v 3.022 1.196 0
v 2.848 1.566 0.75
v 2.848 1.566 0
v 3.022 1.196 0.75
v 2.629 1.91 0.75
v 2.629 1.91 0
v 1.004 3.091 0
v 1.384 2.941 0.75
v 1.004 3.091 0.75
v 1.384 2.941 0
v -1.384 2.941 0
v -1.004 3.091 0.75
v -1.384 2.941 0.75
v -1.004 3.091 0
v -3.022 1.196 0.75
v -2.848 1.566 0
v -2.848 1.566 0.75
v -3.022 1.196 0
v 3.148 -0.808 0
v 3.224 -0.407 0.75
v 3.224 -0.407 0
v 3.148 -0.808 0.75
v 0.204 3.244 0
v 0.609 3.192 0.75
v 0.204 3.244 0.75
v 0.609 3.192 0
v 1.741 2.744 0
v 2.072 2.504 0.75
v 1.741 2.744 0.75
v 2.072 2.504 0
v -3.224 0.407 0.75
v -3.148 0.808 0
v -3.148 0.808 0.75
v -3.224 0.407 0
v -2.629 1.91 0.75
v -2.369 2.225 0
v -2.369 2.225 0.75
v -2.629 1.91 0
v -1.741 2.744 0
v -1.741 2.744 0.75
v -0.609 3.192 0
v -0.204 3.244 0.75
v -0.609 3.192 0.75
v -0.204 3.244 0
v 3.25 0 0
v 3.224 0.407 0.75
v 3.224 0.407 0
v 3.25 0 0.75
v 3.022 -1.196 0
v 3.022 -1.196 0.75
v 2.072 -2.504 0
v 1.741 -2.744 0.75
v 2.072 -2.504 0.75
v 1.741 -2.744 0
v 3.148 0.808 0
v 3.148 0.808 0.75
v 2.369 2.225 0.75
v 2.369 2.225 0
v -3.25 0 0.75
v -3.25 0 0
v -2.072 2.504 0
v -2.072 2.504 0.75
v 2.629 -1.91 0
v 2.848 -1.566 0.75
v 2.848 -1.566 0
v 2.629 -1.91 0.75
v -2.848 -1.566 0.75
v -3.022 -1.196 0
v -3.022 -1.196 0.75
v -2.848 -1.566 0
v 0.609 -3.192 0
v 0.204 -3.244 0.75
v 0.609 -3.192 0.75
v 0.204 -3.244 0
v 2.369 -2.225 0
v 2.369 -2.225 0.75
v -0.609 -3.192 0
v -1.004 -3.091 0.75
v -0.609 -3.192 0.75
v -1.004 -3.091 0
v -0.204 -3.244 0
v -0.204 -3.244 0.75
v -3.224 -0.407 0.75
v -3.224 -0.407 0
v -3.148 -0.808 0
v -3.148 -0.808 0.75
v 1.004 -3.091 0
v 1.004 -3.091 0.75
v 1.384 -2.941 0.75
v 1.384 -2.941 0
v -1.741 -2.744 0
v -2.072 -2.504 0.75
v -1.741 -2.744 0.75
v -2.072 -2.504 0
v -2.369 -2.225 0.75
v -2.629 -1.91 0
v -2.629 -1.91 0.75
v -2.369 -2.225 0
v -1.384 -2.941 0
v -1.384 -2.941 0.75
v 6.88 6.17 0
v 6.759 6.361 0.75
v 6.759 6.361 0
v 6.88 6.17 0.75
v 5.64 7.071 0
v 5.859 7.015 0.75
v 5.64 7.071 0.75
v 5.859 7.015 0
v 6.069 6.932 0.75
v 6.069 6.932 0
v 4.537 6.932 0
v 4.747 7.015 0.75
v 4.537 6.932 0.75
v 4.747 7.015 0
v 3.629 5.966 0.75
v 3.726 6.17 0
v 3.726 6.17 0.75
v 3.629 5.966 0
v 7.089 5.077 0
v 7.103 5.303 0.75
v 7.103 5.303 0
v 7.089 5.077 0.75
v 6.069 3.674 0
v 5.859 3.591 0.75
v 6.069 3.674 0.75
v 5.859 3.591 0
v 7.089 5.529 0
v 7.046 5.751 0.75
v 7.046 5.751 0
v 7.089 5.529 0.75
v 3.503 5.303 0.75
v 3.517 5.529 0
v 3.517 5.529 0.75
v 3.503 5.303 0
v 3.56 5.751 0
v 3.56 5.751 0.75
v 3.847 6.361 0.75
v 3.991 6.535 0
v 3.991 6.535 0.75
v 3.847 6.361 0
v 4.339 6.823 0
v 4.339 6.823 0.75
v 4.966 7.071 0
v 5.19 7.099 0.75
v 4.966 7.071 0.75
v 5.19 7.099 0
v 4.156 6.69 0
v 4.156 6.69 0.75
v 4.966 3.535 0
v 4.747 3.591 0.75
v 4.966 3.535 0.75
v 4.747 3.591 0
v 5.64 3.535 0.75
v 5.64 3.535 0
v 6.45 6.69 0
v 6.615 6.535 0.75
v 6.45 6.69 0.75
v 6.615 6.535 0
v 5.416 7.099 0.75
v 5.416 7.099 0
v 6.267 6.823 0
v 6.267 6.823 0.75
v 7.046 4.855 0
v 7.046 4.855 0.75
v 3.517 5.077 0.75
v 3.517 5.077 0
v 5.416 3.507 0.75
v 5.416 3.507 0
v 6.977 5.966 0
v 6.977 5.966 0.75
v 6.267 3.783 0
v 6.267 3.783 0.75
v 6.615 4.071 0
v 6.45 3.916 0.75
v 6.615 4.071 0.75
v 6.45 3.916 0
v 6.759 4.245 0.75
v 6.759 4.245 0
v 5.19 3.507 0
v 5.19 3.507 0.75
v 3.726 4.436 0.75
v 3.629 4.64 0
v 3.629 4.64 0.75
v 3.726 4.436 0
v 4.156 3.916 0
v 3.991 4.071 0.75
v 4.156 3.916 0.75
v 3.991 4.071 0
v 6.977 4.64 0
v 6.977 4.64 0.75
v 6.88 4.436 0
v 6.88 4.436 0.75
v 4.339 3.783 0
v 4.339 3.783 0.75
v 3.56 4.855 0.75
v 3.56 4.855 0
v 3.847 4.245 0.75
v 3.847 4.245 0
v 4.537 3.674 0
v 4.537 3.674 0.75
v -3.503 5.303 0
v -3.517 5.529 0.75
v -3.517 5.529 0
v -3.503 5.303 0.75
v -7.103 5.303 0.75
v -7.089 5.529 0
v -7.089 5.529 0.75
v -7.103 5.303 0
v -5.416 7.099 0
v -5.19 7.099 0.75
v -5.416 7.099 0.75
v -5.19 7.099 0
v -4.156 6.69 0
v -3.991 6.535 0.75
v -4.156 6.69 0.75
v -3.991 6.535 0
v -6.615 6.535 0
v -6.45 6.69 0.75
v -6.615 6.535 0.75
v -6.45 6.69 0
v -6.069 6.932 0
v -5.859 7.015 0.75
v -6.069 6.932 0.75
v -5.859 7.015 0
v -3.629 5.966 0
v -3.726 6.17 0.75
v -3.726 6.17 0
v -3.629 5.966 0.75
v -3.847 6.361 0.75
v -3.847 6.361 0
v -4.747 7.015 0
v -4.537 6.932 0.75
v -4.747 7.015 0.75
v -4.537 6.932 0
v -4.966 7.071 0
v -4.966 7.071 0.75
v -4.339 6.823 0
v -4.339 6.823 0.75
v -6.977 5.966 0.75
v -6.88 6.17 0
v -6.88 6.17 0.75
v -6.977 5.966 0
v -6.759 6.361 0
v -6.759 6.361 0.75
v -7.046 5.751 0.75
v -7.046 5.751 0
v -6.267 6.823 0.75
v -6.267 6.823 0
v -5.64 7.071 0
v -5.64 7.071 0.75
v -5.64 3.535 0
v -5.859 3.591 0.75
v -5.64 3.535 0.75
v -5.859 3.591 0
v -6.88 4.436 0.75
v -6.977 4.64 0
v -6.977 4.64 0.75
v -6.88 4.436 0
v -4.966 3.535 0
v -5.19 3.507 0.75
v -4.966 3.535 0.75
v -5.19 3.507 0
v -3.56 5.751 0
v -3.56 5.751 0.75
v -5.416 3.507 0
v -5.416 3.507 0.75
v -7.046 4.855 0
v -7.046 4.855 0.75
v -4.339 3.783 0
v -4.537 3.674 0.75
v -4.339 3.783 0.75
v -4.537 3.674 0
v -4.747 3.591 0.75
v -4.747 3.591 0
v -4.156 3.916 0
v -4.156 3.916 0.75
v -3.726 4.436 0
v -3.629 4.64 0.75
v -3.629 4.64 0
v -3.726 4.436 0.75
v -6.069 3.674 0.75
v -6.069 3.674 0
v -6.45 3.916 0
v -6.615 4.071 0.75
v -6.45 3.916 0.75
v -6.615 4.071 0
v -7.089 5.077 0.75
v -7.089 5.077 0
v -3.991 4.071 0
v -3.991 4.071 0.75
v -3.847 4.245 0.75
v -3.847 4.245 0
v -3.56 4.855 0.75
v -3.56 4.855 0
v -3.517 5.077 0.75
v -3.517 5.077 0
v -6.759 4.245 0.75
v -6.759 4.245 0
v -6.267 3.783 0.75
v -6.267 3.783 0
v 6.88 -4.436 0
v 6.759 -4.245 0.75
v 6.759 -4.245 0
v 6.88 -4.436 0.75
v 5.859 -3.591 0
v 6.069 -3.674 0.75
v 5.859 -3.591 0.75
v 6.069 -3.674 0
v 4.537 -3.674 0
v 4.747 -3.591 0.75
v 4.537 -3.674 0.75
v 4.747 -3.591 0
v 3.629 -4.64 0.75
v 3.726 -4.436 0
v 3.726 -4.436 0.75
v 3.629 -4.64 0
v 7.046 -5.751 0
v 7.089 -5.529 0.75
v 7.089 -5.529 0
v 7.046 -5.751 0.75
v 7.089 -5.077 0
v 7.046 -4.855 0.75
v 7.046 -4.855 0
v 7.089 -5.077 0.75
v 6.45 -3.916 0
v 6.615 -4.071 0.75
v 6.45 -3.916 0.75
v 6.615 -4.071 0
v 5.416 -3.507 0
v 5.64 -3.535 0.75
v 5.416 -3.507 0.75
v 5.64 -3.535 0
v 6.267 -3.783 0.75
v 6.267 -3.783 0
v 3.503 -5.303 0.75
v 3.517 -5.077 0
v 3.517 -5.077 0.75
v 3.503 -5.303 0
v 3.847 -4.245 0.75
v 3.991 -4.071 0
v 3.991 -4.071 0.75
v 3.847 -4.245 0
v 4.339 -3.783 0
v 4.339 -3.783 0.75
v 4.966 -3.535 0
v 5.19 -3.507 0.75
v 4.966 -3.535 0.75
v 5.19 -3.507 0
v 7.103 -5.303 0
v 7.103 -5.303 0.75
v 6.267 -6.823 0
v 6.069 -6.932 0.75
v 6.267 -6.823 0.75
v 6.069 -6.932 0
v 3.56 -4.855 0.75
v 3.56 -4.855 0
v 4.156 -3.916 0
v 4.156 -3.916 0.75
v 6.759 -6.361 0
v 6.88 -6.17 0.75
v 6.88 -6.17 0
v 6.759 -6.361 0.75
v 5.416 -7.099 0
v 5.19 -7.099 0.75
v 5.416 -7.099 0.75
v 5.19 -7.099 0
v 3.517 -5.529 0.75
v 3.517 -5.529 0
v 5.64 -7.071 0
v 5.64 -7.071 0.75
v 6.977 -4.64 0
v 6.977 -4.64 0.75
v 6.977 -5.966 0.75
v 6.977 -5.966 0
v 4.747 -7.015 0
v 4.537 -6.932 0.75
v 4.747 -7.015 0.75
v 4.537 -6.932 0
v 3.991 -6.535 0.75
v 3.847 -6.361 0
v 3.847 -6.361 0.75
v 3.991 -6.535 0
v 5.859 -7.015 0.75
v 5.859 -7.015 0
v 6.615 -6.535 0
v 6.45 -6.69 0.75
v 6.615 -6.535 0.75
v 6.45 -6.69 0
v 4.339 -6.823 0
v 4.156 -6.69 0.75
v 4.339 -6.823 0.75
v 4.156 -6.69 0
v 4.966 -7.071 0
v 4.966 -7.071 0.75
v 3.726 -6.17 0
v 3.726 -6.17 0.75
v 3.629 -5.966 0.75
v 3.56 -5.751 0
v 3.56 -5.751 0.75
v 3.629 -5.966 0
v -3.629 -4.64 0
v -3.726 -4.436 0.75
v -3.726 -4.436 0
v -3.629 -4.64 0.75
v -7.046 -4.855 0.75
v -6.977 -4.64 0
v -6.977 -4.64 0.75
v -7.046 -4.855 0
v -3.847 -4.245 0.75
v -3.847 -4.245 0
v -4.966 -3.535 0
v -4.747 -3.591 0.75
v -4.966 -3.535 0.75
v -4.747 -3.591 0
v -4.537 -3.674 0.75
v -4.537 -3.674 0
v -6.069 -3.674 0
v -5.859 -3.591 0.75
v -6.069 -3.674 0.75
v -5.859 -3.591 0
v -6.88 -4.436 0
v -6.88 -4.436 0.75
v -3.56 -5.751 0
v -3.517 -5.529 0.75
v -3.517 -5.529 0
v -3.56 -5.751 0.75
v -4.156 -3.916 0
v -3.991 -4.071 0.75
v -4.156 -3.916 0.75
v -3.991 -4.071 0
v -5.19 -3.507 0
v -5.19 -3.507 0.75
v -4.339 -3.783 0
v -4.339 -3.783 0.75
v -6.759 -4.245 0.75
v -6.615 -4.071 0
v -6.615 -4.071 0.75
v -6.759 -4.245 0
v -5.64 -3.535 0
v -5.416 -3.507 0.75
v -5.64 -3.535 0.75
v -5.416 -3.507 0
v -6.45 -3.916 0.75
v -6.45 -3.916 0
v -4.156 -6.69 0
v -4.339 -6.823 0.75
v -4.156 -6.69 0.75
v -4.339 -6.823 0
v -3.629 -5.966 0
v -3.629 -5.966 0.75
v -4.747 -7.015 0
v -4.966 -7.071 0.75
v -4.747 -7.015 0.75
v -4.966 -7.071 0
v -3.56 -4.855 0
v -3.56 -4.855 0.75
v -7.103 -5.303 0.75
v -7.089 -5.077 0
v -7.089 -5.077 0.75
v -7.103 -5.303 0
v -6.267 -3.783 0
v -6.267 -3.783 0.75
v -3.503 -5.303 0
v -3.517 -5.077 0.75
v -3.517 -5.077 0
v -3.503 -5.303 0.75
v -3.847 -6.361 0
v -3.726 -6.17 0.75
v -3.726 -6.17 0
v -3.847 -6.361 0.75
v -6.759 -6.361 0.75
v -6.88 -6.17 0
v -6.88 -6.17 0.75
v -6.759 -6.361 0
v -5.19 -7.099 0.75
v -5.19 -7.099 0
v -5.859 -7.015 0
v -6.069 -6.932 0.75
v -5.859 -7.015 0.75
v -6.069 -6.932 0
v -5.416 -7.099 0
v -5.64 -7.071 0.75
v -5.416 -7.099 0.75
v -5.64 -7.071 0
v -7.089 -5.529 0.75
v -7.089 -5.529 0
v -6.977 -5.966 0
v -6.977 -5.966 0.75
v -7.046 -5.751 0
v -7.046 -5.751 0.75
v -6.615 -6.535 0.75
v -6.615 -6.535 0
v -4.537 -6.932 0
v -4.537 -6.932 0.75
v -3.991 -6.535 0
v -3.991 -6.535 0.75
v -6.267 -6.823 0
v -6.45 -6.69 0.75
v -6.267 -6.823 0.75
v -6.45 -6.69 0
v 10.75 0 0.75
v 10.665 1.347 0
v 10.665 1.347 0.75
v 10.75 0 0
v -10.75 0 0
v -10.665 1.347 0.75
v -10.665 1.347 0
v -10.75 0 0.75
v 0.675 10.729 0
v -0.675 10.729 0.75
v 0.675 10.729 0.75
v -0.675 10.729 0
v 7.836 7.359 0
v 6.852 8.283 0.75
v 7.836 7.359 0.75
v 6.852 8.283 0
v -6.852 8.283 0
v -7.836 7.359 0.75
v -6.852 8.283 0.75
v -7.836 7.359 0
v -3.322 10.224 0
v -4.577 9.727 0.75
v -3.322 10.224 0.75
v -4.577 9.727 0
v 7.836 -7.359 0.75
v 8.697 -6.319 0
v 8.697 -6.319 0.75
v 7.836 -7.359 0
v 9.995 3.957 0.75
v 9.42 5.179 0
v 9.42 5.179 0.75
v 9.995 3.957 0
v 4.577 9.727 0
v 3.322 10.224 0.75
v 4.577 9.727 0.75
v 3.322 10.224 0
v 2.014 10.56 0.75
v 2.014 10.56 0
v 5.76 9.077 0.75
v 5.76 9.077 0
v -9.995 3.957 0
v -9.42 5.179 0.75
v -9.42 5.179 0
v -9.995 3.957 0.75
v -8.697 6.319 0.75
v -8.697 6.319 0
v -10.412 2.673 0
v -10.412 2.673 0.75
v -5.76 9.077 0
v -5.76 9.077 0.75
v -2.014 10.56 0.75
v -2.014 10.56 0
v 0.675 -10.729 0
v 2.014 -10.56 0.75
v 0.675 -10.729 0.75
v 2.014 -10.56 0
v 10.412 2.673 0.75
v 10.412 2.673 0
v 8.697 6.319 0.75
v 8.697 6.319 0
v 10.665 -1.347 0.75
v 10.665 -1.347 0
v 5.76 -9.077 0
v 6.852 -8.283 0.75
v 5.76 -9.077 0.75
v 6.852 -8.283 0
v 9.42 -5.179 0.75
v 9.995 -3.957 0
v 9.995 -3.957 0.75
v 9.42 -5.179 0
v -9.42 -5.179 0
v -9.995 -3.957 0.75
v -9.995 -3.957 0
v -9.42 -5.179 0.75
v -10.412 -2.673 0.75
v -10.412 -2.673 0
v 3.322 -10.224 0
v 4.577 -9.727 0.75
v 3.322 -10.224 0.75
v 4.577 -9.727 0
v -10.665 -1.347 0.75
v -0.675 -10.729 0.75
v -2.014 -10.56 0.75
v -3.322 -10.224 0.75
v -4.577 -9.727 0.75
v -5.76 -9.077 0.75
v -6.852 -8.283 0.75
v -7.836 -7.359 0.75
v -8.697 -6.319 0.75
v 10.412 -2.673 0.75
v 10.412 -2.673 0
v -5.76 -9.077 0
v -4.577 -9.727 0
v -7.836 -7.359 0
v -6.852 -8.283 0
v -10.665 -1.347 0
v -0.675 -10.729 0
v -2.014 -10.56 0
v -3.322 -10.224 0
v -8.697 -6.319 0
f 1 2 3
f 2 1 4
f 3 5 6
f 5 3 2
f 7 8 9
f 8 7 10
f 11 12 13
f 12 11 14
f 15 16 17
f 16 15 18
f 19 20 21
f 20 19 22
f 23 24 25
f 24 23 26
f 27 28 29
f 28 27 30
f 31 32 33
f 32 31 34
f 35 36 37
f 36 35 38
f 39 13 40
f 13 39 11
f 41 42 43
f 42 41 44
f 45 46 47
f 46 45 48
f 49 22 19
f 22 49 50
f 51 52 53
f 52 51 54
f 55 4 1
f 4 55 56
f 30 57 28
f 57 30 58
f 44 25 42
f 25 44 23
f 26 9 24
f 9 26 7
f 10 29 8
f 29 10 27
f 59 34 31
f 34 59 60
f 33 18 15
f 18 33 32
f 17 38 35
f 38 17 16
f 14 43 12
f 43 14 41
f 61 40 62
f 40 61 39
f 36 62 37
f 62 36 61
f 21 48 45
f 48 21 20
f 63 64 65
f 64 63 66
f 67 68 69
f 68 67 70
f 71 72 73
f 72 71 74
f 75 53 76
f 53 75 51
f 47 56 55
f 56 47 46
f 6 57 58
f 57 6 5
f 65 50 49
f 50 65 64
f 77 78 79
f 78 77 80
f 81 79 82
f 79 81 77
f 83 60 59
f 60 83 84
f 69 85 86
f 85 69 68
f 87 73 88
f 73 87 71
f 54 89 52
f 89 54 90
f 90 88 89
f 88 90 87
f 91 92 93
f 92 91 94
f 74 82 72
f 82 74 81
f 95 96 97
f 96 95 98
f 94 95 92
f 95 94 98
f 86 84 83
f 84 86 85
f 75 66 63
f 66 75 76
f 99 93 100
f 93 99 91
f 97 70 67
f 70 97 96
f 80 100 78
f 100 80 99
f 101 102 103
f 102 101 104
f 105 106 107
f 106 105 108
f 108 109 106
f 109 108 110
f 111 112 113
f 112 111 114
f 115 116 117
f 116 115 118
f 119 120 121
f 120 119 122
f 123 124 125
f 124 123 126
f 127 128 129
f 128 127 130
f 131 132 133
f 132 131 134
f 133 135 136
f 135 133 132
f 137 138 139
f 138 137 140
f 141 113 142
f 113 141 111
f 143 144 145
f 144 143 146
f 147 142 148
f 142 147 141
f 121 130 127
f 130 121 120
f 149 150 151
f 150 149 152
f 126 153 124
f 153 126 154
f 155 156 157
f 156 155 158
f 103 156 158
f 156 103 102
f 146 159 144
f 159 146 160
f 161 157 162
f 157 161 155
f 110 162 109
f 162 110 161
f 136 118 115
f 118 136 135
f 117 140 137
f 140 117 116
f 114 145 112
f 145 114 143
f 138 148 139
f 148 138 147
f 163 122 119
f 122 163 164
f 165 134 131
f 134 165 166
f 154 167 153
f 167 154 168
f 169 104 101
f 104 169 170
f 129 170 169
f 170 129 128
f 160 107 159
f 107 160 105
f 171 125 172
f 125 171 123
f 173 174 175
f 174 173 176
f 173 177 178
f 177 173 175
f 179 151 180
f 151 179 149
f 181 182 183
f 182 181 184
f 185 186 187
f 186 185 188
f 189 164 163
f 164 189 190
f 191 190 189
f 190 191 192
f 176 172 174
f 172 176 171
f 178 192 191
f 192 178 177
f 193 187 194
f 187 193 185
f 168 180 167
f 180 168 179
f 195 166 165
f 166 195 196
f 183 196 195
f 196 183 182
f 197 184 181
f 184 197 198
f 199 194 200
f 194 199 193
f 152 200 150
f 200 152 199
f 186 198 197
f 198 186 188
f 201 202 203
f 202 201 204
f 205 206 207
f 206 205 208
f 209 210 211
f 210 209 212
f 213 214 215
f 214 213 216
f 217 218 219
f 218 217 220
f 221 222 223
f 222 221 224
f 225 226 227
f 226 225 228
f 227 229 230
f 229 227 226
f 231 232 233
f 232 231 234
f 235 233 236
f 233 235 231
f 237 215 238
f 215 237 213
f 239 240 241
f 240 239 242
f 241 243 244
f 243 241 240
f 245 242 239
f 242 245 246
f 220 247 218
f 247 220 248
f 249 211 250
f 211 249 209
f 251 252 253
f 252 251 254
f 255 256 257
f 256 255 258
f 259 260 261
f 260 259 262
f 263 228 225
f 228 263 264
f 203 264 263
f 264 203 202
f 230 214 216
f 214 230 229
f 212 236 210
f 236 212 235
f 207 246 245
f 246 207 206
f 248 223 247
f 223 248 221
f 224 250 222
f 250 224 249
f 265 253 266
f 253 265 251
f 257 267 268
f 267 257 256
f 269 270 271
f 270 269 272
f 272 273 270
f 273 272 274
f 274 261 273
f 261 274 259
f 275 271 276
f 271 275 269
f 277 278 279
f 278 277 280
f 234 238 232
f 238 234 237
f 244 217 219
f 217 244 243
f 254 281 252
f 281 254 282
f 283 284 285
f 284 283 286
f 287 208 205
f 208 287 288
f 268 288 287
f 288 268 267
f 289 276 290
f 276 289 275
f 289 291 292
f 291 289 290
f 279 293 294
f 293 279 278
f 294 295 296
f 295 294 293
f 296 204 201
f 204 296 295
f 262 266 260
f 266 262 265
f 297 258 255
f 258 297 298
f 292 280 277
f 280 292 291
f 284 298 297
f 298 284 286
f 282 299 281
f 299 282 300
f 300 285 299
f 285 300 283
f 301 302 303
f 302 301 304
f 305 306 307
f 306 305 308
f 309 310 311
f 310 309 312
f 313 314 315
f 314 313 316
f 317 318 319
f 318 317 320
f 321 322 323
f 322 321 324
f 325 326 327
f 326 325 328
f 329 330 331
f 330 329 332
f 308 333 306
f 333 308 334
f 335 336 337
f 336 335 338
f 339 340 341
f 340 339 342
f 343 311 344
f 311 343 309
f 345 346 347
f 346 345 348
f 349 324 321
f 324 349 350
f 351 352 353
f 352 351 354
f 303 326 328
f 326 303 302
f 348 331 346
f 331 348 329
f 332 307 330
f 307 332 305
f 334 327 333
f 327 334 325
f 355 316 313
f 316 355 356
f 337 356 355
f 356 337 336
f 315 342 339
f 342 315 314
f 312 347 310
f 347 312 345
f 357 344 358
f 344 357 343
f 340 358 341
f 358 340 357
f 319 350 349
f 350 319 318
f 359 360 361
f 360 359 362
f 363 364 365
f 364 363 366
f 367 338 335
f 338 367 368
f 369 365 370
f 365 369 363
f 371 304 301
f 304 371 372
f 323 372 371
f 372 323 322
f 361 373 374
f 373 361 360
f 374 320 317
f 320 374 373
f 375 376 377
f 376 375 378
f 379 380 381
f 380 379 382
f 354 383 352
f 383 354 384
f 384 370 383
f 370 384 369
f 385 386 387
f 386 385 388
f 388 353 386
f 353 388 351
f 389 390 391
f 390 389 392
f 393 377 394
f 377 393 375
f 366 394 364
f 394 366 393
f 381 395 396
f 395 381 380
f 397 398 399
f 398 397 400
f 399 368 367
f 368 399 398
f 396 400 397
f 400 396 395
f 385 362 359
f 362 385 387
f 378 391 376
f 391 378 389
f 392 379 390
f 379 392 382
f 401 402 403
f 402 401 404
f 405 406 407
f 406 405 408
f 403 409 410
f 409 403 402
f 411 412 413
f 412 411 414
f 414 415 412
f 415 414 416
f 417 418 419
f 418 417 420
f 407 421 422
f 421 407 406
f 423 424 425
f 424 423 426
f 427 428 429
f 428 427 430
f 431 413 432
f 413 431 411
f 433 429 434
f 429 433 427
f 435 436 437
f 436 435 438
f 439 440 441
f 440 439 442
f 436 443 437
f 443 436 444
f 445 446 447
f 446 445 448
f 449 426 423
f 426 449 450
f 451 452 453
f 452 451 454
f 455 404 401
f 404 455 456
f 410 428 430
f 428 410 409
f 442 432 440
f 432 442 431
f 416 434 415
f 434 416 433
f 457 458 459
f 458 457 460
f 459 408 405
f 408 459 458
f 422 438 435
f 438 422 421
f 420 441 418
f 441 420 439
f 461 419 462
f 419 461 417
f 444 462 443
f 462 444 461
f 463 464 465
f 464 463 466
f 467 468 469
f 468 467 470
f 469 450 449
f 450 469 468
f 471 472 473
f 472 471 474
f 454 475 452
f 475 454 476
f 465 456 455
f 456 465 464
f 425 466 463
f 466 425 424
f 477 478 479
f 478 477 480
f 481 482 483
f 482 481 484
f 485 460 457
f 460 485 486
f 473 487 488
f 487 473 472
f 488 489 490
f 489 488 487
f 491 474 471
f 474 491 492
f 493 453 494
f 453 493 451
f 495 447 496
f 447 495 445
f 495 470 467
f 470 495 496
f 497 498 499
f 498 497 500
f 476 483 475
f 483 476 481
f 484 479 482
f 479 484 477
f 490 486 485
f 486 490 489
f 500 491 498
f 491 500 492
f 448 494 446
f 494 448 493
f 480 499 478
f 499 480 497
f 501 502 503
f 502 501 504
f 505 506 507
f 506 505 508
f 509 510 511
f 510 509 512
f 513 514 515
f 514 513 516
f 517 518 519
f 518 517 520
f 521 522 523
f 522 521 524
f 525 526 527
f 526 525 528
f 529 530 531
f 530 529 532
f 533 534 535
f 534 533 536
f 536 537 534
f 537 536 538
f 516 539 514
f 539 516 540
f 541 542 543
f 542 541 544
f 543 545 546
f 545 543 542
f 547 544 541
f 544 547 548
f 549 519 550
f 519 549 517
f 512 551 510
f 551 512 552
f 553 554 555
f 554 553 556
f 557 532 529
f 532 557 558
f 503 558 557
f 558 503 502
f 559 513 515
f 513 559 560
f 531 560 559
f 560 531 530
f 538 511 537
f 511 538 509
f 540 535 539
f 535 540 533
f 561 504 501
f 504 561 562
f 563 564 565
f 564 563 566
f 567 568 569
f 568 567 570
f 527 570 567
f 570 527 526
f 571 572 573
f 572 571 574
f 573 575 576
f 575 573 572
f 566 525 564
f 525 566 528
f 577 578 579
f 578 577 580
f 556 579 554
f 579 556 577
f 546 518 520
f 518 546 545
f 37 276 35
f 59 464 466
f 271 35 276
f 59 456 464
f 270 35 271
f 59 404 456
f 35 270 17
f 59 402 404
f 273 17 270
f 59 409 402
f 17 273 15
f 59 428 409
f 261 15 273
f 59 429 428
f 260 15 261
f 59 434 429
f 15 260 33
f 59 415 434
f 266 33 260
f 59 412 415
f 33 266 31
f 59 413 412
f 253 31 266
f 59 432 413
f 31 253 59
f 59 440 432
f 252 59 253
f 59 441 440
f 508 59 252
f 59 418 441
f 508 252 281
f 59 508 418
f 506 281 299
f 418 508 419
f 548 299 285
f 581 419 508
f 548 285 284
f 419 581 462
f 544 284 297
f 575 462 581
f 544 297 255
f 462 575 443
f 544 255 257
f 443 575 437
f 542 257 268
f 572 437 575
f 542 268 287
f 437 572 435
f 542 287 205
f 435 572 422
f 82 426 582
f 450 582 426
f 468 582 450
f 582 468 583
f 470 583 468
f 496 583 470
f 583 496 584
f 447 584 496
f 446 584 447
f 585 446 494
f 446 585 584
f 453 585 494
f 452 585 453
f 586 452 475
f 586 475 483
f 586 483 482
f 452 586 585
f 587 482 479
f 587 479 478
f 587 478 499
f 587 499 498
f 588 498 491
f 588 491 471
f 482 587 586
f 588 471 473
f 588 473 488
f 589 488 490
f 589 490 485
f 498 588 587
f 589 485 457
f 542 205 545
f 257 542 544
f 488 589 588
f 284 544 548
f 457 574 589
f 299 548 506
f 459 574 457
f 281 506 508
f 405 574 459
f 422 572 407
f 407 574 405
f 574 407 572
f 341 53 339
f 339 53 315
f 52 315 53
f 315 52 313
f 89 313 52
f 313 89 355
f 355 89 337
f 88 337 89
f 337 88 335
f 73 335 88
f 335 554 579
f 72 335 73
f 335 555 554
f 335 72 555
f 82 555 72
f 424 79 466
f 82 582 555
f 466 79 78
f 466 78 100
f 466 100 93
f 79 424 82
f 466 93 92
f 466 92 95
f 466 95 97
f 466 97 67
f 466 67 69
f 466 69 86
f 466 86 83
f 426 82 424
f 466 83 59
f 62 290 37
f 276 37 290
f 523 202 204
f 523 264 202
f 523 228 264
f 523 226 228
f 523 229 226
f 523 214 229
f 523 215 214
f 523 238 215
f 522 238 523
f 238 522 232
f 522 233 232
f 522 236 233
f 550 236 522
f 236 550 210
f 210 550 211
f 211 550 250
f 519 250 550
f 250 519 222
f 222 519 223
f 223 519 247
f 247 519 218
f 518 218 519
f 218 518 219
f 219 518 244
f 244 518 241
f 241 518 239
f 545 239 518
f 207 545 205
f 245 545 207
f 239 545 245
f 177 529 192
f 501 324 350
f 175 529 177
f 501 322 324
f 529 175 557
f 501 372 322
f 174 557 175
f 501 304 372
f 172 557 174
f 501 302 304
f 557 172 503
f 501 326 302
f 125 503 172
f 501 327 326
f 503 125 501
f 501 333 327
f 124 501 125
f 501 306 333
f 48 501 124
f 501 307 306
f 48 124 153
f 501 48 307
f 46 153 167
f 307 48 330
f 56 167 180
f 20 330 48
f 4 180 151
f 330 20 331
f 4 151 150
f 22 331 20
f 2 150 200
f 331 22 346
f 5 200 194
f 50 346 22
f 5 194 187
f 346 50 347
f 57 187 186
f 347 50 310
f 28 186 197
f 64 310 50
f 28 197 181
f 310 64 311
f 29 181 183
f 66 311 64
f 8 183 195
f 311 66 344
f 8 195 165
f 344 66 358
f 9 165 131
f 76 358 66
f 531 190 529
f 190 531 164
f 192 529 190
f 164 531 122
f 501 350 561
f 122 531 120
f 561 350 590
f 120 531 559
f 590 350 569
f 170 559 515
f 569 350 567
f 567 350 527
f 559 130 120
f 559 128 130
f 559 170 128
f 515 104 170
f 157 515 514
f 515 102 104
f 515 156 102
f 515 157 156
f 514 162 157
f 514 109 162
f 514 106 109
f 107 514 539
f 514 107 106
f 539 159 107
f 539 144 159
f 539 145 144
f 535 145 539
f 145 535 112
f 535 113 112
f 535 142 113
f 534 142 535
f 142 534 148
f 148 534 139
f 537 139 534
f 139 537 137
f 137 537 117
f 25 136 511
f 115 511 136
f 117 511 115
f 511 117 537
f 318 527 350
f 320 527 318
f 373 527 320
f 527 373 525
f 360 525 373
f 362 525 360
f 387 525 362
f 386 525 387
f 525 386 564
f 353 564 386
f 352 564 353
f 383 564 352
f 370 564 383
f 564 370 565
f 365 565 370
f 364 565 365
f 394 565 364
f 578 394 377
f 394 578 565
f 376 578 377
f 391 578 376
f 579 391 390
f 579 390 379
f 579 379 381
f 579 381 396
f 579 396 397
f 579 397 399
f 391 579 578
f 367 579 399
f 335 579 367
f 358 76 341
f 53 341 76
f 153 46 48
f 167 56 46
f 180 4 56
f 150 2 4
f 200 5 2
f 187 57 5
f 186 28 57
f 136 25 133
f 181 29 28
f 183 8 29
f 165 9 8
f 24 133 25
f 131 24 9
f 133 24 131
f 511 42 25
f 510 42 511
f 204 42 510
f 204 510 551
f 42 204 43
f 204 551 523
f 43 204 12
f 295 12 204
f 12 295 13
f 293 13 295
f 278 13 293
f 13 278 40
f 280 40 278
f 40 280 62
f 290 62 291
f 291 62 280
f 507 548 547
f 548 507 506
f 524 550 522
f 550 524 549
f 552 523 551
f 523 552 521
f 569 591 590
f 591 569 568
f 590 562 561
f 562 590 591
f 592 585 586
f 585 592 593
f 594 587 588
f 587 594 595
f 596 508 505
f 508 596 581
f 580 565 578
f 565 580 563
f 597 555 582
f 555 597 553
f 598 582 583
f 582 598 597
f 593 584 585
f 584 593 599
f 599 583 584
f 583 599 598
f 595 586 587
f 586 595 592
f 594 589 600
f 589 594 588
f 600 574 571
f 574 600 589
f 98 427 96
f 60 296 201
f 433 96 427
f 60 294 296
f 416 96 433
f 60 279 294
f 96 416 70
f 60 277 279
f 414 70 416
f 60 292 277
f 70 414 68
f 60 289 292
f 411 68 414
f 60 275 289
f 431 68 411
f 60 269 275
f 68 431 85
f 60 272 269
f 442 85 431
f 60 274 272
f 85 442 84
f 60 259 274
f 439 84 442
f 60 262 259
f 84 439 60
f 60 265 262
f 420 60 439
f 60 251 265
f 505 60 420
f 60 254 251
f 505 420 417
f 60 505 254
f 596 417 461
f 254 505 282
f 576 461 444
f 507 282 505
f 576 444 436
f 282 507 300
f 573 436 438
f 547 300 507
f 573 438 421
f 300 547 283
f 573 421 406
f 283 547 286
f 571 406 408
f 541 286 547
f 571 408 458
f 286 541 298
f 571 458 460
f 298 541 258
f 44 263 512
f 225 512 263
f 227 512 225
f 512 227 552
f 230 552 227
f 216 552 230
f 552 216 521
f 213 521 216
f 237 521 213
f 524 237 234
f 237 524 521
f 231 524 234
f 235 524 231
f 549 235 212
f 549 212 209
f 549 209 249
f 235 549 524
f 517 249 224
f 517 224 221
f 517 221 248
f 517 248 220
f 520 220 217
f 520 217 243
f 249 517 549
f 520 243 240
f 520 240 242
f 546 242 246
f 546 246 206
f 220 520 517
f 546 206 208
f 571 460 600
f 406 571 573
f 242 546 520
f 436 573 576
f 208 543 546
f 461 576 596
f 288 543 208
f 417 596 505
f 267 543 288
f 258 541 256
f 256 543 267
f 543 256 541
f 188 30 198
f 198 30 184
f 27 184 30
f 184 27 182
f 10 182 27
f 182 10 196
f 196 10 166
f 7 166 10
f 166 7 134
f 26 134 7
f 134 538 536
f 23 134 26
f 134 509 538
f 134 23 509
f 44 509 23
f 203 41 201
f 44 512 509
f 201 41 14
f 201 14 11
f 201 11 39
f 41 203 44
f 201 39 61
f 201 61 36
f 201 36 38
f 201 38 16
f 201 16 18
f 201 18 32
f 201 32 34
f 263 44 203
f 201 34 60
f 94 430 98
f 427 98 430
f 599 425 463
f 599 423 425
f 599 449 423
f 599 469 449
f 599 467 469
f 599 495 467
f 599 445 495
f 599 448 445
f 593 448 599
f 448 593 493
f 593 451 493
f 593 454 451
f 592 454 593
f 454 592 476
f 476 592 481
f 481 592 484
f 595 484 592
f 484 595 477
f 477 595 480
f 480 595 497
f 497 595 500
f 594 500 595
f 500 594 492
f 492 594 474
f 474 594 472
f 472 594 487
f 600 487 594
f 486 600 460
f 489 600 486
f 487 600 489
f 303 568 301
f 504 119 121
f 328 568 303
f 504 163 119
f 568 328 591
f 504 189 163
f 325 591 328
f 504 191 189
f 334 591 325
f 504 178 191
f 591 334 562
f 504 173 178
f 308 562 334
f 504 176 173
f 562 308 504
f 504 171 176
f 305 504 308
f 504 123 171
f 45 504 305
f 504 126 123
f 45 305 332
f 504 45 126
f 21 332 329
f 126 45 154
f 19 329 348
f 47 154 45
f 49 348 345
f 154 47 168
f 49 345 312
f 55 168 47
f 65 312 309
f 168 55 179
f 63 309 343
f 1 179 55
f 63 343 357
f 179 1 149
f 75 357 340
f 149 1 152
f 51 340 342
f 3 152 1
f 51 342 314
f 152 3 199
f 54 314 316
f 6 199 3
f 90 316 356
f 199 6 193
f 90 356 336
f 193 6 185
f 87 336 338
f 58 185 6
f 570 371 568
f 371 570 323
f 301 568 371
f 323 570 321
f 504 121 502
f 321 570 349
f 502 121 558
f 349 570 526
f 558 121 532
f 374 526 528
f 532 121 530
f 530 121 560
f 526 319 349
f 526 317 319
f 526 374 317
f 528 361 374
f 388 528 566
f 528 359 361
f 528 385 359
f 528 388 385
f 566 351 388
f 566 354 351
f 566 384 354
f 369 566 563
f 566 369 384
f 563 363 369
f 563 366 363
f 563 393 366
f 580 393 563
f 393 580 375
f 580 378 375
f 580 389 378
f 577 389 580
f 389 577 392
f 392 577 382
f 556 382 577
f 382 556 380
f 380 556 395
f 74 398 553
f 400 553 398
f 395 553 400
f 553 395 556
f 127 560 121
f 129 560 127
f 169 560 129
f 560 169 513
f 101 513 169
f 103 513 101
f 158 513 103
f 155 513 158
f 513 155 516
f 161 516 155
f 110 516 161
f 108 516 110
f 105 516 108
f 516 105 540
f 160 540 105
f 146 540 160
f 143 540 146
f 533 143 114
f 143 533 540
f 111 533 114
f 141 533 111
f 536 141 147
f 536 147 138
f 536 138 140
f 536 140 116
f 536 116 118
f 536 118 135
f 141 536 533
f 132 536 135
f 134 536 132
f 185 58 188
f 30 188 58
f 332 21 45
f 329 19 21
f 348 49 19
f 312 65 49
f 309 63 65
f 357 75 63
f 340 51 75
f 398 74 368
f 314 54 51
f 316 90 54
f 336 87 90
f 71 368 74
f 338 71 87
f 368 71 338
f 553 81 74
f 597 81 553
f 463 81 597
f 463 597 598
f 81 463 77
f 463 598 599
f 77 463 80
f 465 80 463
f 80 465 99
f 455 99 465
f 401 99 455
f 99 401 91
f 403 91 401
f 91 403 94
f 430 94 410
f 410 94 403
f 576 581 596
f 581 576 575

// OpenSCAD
$fn = 50;


difference() {
	union() {
		*color(alpha = 1.0000000000, c = "gray") {
			translate(v = [0, 7, 0]) {
				linear_extrude(height = 1) {
					text(font = "Arial:style=Bold", halign = "center", size = 4.5000000000, text = "COMMENT circle main", valign = "center");
				}
			}
		}
		cylinder(h = 0.7500000000, r = 10.7500000000);
	}
	union() {
		*color(alpha = 1.0000000000, c = "gray") {
			translate(v = [0, 7, 0]) {
				linear_extrude(height = 1) {
					text(font = "Arial:style=Bold", halign = "center", size = 4.5000000000, text = "COMMENT holes main", valign = "center");
				}
			}
		}
		translate(v = [0.0000000000, 0.0000000000, -50.0000000000]) {
			cylinder(h = 100, r = 3.2500000000);
		}
		translate(v = [0.0000000000, 0.0000000000, -50.0000000000]) {
			cylinder(h = 100, r = 3.2500000000);
		}
		translate(v = [0.0000000000, 0.0000000000, -50.0000000000]) {
			cylinder(h = 100, r = 3.2500000000);
		}
		translate(v = [0.0000000000, 0.0000000000, -50.0000000000]) {
			cylinder(h = 100, r = 1.8000000000);
		}
		translate(v = [0.0000000000, 0.0000000000, -50.0000000000]) {
			cylinder(h = 100, r = 1.8000000000);
		}
		translate(v = [0.0000000000, 0.0000000000, -50.0000000000]) {
			cylinder(h = 100, r = 1.8000000000);
		}
		#translate(v = [5.3030000000, 5.3030000000, -50.0000000000]) {
			cylinder(h = 100, r = 1.8000000000);
		}
		#translate(v = [-5.3030000000, 5.3030000000, -50.0000000000]) {
			cylinder(h = 100, r = 1.8000000000);
		}
		#translate(v = [5.3030000000, -5.3030000000, -50.0000000000]) {
			cylinder(h = 100, r = 1.8000000000);
		}
		#translate(v = [-5.3030000000, -5.3030000000, -50.0000000000]) {
			cylinder(h = 100, r = 1.8000000000);
		}
	}
}
